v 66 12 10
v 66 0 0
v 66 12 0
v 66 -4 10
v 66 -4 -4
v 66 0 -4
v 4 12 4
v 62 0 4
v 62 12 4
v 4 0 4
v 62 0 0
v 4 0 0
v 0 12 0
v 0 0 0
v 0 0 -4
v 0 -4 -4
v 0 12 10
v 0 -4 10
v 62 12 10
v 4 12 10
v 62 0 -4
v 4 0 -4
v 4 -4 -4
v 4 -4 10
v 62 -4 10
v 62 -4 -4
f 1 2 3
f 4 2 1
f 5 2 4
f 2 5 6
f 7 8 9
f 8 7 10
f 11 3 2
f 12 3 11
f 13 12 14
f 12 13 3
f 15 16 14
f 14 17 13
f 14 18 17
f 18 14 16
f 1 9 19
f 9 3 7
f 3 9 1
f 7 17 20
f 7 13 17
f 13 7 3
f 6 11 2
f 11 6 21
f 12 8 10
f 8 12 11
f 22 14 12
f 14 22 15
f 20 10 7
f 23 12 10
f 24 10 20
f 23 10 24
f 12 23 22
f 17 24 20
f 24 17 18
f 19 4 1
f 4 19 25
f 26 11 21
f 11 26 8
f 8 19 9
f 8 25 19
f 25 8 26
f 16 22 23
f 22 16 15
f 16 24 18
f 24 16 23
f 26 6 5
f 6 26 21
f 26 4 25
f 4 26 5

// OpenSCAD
base_width = 58; // Base of camera is 58mm
base_height = 4; // Enough height so camera hook doesn't cover the screen
base_depth = 12; // About the same depth as the flat area on top of my screen
side_wall_height = 6; // Same height as the thickness of the camera mount
side_wall_width = 4; // Thickness of the side walls
front_hook_depth = 4; // Thickness of the hooks
front_hook_size = 4; // Depth of the hooks

module myObject() {
  // Make base
  cube([base_width + (side_wall_width * 2), base_depth, base_height]);

  // Add side walls
  cube([side_wall_width, base_depth, side_wall_height + base_height]);
  translate([base_width + side_wall_width, 0, 0]) cube([side_wall_width, base_depth, side_wall_height + base_height]);

  // Add Front hooks
  translate([0,-front_hook_depth,-front_hook_size]) cube([side_wall_width,front_hook_depth,front_hook_size+base_height+side_wall_height]);
  translate([base_width + side_wall_width,-front_hook_depth,-front_hook_size]) cube([side_wall_width,front_hook_depth,front_hook_size+base_height+side_wall_height]);
}

myObject();
